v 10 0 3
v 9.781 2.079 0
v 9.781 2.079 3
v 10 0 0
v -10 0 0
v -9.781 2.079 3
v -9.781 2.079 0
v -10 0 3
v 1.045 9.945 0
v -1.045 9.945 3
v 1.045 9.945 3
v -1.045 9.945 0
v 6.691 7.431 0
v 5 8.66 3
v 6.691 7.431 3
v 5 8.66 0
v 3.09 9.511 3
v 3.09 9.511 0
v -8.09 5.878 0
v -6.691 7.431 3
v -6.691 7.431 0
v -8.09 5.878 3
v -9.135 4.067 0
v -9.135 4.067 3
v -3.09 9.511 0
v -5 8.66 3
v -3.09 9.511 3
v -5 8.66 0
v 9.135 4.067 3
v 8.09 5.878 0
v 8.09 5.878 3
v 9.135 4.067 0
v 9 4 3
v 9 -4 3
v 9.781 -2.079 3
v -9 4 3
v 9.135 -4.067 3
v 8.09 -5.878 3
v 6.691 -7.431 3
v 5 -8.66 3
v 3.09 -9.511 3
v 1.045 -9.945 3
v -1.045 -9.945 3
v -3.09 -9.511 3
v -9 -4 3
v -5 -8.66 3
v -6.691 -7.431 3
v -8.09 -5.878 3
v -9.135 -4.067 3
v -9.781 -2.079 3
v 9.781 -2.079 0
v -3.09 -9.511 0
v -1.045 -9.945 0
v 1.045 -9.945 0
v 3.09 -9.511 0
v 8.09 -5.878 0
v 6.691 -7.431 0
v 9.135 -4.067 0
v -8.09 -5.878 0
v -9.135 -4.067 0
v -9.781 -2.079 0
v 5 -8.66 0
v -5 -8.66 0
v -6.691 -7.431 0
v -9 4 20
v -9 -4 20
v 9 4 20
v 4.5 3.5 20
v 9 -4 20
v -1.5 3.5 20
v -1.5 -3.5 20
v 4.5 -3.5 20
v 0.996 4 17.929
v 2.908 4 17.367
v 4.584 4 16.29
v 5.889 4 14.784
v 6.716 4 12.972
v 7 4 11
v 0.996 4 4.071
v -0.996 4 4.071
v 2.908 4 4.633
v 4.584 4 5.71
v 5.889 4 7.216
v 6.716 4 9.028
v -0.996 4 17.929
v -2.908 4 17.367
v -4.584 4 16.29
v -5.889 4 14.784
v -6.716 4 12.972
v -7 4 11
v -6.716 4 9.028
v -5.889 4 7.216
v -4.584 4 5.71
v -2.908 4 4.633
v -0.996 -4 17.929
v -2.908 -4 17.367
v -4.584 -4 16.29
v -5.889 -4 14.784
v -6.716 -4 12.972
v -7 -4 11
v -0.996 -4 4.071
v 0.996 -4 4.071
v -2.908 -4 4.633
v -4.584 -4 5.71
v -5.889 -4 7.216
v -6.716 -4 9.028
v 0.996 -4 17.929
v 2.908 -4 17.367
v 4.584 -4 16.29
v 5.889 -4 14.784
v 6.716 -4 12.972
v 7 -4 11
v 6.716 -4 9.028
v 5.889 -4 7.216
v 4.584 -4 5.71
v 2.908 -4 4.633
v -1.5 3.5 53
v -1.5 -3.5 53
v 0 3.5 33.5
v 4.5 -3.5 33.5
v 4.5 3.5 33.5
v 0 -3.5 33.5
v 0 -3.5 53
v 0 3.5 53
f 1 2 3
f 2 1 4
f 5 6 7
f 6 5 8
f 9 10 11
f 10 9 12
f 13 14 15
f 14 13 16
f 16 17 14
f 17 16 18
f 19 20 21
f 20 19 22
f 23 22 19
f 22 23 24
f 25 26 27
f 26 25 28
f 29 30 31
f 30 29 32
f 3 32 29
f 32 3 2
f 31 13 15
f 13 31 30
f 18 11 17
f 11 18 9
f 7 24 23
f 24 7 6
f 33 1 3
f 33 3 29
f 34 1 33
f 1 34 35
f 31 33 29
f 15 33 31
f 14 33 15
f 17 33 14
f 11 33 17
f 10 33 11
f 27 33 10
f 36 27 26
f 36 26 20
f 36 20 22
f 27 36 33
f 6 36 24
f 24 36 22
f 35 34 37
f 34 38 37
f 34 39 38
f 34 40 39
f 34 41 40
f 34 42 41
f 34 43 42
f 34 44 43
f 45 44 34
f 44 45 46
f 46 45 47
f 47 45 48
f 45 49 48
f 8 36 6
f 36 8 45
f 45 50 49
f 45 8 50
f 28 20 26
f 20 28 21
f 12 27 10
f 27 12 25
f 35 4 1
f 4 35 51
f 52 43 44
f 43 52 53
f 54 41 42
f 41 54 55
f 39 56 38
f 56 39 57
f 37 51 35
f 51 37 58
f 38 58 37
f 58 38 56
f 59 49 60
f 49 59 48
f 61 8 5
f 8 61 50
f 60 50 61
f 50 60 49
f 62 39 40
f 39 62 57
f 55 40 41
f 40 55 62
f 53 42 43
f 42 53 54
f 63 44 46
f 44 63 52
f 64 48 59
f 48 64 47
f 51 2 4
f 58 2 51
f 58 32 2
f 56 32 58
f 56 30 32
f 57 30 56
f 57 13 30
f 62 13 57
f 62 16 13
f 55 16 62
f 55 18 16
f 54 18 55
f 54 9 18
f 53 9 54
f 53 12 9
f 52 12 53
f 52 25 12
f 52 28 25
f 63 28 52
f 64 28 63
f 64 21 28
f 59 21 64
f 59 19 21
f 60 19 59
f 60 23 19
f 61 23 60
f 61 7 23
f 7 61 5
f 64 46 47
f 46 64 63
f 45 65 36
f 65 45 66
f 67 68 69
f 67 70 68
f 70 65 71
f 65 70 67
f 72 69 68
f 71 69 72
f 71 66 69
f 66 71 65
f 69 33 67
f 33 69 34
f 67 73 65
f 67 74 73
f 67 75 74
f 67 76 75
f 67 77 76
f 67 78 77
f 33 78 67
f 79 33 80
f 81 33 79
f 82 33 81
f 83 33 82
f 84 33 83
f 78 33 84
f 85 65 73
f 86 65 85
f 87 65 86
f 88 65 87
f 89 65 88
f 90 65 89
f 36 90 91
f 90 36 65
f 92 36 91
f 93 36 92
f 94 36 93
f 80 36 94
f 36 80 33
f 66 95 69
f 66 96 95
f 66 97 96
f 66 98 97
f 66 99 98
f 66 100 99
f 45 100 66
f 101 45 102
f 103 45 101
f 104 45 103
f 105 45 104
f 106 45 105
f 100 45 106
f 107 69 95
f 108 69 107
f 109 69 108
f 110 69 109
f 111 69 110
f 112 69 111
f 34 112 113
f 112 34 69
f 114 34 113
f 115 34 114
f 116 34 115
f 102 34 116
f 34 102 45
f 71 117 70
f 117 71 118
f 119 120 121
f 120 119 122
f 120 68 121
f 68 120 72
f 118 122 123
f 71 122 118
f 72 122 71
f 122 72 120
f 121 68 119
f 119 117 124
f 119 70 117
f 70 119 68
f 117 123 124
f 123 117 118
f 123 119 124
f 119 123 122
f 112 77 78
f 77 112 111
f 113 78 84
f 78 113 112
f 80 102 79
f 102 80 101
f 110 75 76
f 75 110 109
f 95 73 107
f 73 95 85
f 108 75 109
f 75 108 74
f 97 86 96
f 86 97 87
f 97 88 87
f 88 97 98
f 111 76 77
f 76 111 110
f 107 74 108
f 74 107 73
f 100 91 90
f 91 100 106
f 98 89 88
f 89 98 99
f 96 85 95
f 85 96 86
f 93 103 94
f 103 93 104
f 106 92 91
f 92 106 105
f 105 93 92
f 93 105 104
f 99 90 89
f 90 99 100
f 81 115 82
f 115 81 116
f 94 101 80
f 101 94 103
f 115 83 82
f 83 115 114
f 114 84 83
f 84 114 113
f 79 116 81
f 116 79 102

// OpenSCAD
difference() {
    union() {
        cylinder(r=10, h=3);
        #translate([0, 0, 16/2+3]) cube([18, 8, 18], center=true);
        translate([1.5, 0, 15/2+3+16]) cube([6, 7, 14], center=true);
        translate([1.5/-2, 0, 10+16+3+14]) cube([1.5, 7, 20], center=true);
    }
    translate([0, 5, 11]) rotate([90, 0, 0]) cylinder(r=7, h=10);
}
